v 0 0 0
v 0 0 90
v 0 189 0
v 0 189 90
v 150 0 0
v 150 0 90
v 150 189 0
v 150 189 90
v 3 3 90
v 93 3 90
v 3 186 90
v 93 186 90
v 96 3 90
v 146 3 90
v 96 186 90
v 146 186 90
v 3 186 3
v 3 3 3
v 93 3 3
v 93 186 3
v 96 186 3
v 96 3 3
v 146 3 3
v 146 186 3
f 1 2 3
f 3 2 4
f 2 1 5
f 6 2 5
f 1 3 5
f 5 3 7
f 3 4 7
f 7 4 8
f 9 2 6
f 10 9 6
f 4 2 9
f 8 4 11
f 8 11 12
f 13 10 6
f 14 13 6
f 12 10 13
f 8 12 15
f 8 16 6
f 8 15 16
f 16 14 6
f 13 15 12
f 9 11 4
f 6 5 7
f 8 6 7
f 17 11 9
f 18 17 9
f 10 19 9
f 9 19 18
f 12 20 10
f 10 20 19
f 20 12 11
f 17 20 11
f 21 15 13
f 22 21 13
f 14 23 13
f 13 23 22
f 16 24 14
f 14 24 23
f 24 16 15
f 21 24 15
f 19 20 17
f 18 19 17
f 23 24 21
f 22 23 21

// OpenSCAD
wall_floor=3;
height=90;
total_width=150;
total_length=189;

difference(){
cube([total_width,total_length,height]);

  translate([wall_floor,wall_floor,wall_floor]){
    cube([90,183,height]);
  }

  translate([2*wall_floor+90,wall_floor,wall_floor]){
    cube([50,183,height]);
  }

}
